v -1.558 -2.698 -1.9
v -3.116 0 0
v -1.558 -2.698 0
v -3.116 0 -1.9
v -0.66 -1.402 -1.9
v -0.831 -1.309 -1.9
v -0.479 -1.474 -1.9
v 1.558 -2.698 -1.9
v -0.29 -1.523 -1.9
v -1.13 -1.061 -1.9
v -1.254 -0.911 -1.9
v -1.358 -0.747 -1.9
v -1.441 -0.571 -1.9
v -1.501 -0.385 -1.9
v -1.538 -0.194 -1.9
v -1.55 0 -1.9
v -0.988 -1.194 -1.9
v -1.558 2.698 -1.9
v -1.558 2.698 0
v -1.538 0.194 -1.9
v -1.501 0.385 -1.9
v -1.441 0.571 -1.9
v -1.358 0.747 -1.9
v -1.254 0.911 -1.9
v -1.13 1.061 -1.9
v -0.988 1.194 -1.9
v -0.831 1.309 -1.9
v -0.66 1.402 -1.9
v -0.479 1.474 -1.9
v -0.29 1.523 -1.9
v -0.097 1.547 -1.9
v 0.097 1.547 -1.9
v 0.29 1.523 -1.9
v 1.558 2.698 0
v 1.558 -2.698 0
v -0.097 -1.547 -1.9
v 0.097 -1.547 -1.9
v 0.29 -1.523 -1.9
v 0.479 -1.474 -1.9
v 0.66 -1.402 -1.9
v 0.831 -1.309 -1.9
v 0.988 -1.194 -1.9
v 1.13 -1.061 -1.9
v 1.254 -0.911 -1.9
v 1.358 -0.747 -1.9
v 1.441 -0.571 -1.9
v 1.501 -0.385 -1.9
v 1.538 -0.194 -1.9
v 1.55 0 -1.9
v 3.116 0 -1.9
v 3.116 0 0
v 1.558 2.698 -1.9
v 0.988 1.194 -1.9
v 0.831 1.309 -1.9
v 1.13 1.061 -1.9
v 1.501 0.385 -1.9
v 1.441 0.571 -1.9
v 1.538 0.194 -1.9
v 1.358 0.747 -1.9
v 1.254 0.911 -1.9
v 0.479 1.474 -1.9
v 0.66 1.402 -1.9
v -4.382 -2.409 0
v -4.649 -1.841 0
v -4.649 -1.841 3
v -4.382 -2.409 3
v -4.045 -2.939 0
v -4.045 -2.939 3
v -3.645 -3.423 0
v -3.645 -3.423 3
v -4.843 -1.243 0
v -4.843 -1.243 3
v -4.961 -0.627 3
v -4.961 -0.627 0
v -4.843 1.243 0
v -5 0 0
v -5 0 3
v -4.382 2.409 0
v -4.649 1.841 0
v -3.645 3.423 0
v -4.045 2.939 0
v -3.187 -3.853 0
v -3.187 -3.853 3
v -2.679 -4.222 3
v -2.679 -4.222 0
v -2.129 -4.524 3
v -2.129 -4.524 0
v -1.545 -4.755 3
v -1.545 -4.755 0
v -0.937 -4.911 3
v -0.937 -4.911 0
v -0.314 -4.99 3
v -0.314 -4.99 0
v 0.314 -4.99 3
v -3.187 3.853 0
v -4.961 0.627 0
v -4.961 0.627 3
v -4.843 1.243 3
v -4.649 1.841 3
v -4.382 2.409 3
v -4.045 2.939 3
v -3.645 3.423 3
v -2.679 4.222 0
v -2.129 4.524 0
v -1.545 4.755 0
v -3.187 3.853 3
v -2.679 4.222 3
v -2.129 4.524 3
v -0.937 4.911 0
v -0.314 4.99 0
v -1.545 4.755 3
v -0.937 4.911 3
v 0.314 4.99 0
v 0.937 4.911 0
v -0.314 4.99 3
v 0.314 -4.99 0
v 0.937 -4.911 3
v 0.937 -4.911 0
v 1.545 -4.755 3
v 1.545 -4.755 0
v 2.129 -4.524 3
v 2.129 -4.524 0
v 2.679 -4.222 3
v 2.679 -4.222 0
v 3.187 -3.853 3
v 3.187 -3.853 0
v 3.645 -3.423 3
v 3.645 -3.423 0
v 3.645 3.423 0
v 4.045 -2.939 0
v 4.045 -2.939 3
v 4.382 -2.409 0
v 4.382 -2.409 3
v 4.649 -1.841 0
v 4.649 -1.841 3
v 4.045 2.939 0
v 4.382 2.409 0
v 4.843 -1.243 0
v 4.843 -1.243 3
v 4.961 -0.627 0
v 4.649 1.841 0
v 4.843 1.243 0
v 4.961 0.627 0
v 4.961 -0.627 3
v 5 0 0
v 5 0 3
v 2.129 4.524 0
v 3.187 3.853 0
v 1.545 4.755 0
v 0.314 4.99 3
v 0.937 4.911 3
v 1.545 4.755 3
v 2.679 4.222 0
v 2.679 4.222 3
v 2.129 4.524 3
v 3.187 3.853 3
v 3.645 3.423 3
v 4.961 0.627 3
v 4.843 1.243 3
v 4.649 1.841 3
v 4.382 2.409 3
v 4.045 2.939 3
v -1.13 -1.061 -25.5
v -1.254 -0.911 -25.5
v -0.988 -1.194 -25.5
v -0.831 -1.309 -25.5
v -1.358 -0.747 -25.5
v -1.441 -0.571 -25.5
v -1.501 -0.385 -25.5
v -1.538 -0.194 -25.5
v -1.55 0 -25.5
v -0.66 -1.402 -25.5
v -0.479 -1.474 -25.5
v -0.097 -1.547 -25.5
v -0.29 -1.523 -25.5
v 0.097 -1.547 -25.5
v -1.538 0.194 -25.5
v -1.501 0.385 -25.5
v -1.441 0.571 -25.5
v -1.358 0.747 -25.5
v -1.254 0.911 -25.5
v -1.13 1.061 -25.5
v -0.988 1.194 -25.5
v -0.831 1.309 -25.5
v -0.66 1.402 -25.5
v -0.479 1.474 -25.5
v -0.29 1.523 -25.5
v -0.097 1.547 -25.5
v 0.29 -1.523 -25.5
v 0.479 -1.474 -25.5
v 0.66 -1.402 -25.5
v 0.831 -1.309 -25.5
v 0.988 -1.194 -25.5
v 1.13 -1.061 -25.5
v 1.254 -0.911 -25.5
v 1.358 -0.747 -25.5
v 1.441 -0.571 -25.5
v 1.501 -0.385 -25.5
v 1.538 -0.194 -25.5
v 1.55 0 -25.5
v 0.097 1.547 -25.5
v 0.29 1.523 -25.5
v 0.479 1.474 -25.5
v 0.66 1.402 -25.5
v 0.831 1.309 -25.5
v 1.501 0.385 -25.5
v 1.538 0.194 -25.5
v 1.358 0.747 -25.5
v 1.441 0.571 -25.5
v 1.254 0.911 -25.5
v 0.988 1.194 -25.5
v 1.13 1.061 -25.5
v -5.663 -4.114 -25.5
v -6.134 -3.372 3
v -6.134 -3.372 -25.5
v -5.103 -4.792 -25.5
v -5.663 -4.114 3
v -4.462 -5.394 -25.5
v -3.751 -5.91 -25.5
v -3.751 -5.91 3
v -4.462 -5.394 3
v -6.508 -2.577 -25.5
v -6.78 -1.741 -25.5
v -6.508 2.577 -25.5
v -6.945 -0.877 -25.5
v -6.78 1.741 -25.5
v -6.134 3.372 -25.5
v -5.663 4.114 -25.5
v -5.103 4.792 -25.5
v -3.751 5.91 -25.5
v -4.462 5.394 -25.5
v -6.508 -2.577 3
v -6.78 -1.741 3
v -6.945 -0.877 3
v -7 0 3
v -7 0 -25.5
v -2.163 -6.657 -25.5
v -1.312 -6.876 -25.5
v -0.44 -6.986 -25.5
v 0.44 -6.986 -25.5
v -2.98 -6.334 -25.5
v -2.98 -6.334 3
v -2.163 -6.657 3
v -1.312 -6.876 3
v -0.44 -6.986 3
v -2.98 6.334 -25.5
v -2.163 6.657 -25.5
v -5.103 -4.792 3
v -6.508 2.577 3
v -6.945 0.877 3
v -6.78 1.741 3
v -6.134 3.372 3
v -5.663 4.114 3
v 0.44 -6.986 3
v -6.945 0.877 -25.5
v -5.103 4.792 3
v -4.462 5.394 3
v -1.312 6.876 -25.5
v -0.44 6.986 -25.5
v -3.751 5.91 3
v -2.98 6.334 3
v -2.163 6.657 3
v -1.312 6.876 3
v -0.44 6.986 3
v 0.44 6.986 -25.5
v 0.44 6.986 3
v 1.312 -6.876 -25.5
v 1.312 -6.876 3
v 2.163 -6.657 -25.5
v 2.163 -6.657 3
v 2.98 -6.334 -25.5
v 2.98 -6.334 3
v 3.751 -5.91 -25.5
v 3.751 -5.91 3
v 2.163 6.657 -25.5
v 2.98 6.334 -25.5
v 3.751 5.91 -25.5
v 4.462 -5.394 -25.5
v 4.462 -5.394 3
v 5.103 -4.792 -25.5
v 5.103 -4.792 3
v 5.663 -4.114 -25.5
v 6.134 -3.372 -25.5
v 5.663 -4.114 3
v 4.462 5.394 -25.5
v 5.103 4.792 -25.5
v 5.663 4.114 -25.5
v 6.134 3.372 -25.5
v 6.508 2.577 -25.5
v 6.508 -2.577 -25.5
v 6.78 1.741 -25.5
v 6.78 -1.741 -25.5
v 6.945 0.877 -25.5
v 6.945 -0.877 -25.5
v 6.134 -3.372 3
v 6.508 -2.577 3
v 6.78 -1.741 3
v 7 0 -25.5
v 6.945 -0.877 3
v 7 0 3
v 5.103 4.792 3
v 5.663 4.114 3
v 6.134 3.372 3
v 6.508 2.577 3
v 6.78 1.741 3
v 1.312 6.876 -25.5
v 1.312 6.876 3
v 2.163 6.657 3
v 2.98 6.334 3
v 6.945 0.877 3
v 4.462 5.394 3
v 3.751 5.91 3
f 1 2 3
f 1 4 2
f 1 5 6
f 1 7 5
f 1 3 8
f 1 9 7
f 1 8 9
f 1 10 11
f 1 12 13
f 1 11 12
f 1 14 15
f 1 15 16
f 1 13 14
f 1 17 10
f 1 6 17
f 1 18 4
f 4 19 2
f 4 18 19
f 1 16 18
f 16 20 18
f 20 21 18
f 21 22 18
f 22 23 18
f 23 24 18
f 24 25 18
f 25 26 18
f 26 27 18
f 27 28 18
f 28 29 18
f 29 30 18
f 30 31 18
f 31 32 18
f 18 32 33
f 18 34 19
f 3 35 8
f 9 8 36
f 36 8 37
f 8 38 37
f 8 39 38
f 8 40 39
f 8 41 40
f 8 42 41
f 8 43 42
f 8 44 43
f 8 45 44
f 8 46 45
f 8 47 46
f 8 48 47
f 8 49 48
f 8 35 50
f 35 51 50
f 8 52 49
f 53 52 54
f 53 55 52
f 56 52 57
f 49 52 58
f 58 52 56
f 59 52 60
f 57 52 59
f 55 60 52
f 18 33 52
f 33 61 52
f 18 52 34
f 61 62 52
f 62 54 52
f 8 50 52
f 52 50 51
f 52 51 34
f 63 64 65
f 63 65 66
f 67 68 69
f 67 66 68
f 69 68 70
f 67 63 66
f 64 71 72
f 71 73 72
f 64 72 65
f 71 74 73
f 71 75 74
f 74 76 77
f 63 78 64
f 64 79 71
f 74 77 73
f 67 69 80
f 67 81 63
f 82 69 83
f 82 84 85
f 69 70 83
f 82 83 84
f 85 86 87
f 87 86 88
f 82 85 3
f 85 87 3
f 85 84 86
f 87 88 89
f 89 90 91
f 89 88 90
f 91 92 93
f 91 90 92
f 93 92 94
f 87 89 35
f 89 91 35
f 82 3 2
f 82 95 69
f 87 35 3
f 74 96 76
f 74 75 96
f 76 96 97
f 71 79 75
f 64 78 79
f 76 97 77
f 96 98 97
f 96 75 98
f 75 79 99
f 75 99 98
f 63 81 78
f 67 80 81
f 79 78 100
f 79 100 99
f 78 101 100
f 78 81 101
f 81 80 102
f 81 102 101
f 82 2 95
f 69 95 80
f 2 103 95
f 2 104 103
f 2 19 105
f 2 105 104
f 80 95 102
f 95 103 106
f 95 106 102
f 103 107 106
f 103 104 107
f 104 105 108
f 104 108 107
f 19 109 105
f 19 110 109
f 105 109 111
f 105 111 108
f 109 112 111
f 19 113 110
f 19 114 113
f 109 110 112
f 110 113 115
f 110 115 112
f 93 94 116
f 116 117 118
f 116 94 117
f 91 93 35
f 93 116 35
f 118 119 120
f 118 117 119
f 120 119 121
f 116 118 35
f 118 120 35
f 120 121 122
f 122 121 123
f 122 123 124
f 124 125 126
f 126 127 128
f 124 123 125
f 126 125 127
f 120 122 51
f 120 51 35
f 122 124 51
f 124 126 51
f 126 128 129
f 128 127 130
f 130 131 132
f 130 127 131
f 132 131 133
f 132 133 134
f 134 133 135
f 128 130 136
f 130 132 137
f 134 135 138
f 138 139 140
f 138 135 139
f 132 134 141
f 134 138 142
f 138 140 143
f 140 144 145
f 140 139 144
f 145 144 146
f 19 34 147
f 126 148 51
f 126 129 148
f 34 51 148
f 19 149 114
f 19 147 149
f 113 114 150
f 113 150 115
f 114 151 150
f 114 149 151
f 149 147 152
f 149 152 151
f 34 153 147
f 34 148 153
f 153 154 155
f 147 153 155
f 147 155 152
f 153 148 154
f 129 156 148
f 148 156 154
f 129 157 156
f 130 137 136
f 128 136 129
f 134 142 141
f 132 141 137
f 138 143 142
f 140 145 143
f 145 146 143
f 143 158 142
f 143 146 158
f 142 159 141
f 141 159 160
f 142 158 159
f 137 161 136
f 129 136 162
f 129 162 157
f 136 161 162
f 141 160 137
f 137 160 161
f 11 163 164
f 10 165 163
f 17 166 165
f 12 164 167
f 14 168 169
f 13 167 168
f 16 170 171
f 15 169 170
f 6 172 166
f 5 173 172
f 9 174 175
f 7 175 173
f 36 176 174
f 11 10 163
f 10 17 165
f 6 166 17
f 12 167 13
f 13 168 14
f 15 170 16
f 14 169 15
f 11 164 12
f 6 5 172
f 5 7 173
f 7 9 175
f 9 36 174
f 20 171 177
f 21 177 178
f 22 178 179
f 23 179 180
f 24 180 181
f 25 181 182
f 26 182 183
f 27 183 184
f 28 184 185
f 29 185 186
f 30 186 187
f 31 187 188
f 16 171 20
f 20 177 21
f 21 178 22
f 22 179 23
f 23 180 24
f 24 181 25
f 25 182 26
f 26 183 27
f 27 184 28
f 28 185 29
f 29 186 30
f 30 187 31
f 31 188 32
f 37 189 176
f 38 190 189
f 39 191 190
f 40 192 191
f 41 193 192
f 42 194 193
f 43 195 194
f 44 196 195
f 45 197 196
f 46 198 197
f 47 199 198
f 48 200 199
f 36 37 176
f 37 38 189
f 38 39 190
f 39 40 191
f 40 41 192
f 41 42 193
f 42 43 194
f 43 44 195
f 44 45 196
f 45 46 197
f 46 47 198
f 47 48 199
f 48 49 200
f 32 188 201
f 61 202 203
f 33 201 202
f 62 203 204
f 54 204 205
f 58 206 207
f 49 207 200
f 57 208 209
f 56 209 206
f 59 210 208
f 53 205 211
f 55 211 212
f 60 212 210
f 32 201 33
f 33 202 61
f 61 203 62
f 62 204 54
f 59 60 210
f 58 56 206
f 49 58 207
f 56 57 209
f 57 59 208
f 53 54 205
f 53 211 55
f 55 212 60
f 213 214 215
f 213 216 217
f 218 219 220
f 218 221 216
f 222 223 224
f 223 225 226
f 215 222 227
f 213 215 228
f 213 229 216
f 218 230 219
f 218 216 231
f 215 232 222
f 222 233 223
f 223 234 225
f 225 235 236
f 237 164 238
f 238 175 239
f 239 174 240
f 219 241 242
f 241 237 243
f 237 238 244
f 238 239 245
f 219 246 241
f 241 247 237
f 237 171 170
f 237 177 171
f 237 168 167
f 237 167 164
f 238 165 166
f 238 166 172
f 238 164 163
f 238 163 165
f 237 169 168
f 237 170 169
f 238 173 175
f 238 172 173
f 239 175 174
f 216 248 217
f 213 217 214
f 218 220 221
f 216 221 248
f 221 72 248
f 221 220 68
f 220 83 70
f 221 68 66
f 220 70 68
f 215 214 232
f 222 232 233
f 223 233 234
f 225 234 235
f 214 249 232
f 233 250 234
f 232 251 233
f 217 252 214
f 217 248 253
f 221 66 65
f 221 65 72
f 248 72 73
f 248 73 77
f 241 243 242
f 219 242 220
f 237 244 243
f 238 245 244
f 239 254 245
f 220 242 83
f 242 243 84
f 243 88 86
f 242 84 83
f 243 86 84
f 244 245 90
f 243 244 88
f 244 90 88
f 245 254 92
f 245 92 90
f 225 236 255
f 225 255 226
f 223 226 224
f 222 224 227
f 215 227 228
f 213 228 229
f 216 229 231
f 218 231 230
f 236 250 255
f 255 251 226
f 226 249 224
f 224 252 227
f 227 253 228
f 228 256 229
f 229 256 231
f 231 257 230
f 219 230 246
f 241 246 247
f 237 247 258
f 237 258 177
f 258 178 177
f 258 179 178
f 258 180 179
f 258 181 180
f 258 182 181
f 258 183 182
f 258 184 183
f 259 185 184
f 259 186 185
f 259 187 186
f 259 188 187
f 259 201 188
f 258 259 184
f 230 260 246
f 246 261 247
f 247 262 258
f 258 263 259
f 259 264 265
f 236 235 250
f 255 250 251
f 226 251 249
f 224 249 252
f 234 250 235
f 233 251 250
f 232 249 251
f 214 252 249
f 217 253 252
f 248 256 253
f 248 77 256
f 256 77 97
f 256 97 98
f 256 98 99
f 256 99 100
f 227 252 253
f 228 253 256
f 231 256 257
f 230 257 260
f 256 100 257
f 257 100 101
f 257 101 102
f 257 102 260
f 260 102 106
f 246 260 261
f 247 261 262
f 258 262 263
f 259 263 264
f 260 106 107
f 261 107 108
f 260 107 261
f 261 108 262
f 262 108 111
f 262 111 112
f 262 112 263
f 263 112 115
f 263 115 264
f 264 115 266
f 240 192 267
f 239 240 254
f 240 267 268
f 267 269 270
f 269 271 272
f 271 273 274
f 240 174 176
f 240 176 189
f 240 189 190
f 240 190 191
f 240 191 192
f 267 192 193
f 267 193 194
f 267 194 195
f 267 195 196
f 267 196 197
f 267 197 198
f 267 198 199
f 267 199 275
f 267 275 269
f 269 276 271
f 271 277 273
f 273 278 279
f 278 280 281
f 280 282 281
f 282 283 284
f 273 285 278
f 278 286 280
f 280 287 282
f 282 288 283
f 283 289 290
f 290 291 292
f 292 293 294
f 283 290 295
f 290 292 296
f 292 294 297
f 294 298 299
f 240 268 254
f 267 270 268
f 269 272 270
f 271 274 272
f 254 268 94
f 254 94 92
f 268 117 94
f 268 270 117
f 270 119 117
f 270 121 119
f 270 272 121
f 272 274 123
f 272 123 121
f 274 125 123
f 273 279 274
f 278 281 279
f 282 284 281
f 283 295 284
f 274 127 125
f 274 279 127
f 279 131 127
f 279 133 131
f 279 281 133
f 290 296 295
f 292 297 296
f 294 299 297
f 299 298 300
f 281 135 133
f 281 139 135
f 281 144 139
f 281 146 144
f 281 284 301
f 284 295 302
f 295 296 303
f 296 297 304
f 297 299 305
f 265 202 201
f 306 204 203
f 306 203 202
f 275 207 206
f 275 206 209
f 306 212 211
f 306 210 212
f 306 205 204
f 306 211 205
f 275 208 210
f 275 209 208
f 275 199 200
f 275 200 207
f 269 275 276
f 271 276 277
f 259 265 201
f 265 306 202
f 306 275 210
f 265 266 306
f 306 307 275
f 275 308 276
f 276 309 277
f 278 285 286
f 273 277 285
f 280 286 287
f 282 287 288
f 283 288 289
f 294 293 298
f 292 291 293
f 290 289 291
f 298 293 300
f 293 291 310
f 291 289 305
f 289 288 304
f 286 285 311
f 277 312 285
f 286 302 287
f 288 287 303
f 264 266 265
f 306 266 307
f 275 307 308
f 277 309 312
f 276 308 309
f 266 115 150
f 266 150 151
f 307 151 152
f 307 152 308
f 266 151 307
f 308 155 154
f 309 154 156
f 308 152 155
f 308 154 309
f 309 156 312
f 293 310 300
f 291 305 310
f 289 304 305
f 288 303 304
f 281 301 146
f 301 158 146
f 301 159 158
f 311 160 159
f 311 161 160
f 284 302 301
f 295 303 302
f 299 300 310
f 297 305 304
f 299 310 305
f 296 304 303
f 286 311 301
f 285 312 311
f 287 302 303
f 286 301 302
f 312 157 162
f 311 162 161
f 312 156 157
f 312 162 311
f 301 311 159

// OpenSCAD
$fn = 50;

difference() {
	union() {
		translate(v = [0, 0, -25.5]) {
			cylinder(h = 28.5, r = 7.0);
		}
	}
	union() {
		translate(v = [0, 0, 0]) {
			rotate(a = [0, 0, 0]) {
				difference() {
					union() {
						translate(v = [0, 0, -1.9]) {
							linear_extrude(height = 1.9) {
								polygon(points = [[3.1158, 0.0], [1.5579000000000005, 2.698361953111554], [-1.5578999999999994, 2.6983619531115544], [-3.1158, 3.815754496783323e-16], [-1.5579000000000014, -2.6983619531115535], [1.557899999999998, -2.6983619531115552]]);
							}
						}
					}
					union();
				}
			}
		}
		#cylinder(h = 3, r = 5.0);
		#translate(v = [0, 0, -100.0]) {
			cylinder(h = 200, r = 1.55);
		}
	}
}
